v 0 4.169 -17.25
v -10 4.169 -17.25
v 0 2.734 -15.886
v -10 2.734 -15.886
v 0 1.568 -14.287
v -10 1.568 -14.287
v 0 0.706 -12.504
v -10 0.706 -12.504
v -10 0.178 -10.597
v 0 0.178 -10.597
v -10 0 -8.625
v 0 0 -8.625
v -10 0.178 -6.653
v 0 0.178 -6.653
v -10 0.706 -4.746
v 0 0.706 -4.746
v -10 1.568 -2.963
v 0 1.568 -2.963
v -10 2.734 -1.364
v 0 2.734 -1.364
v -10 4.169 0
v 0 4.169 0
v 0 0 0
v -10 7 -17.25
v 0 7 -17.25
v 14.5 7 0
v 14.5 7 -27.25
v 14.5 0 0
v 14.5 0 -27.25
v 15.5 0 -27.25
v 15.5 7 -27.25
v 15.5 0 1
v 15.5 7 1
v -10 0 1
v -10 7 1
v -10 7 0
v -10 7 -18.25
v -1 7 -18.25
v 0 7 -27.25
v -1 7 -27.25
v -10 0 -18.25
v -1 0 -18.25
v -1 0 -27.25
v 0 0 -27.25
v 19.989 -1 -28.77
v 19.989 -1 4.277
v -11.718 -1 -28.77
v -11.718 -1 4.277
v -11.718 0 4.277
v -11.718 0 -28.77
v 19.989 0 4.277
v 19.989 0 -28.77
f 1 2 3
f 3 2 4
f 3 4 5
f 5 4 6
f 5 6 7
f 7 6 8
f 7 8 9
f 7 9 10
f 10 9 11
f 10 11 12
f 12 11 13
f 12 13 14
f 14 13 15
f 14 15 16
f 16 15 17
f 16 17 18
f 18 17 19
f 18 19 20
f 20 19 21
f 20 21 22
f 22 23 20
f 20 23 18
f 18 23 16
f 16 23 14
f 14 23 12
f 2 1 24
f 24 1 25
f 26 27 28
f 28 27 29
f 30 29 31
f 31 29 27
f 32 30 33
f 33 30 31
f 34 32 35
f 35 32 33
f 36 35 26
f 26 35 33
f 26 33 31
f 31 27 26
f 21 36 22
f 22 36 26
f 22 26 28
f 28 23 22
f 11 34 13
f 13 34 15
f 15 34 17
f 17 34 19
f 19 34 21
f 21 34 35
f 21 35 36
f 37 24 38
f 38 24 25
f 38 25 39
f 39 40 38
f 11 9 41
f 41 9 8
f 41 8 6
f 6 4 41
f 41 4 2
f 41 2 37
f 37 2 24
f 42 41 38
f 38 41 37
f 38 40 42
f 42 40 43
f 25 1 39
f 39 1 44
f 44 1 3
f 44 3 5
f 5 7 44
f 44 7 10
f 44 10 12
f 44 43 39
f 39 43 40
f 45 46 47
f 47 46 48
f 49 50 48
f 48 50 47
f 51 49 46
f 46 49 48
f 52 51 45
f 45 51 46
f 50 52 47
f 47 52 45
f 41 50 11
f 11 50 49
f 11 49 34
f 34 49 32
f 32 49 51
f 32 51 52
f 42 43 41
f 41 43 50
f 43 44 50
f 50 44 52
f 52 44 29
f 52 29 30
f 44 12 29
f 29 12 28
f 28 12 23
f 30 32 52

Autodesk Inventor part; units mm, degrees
ref_plane "YZ Plane" through (0, 0, 0) normal (1, 0, 0) x (0, 1, 0)
ref_plane "XZ Plane" through (0, 0, 0) normal (0, 1, 0) x (-1, 0, 0)
ref_plane "XY Plane" through (0, 0, 0) normal (0, 0, 1) x (1, 0, 0)
sketch "Sketch1" plane through (0, 0, 0) normal (0, 1, 0) x (-1, 0, 0)
  line L0 (0, 0) -> (-14.5, 0)
  line L1 (-14.5, 0) -> (-14.5, -42.5)
  line L2 (-14.5, -42.5) -> (0, -42.5)
  line L3 (0, -42.5) -> (0, 0)
  line L4 (0, 0) -> (15.5, 0)
  line L5 (15.5, 0) -> (15.5, -17.25)
  line L6 (15.5, -17.25) -> (0, -17.25)
  line L7 (0, -17.25) -> (0, 0)
  line L8 (0, -17.25) -> (10, -17.25)
  line L9 (10, -17.25) -> (10, -18.25)
  line L10 (10, -18.25) -> (0, -18.25)
  line L11 (0, -18.25) -> (0, -17.25)
  line L12 (0, -17.25) -> (1, -17.25)
  line L13 (1, -17.25) -> (1, -27.25)
  line L14 (1, -27.25) -> (0, -27.25)
  line L15 (0, -27.25) -> (0, -17.25)
  line L16 (10, 0) -> (-14.5, 0)
  line L17 (-14.5, 0) -> (-14.5, 1)
  line L18 (-14.5, 1) -> (10, 1)
  line L19 (10, 1) -> (10, 0)
  line L20 (-14.5, 1) -> (-15.5, 1)
  line L21 (-15.5, 1) -> (-15.5, -27.25)
  line L22 (-15.5, -27.25) -> (-14.5, -27.25)
  line L23 (-14.5, -27.25) -> (-14.5, 1)
  line L24 (11.7177, -28.7701) -> (-19.9895, -28.7701)
  line L25 (-19.9895, -28.7701) -> (-19.9895, 4.2767)
  line L26 (-19.9895, 4.2767) -> (11.7177, 4.2767)
  line L27 (11.7177, 4.2767) -> (11.7177, -28.7701)
  dimension "d0" = 15.5
  dimension "d1" = 17.25
  dimension "d2" = 14.5
  dimension "d3" = 42.5
  dimension "d4" = 1
  dimension "d5" = 10
  dimension "d6" = 10
  dimension "d7" = 1
  dimension "d8" = 1
  dimension "d9" = 1
  dimension "d10" = 28.25
extrude "Extrusion1" add sketch "Sketch1" against normal blind 1 contours L3 L24 L1 L0 | L4 L27 L6 L3 | L0 L17 L18 L19 L4 | L1 L22 L21 L20 L17 | L6 L13 L10 L3 | L19 L18 L20 L21 L22 L1 L24 L25 L26 L27 L4 | L10 L13 L14 L3 | L6 L9 L10 L13 | L14 L13 L10 L9 L6 L27 L24 L3
extrude "Extrusion2" add sketch "Sketch1" along normal blind 7 contours L0 L17 L18 L19 L4 | L1 L22 L21 L20 L17 | L6 L13 L10 L3 | L10 L13 L14 L3 | L6 L9 L10 L13
sketch "Sketch2" plane through (-10, 0, -17.25) normal (-1, 0, 0) x (0, 0, 1)
  line L0 (0, 0) -> (-1, 0) projected
  line L1 (0, 0) -> (0, 7) projected
  line L2 (-1, 7) -> (0, 7) projected
  line L3 (-1, 0) -> (-1, 7) projected
  line L4 (18.25, 0) -> (17.25, 0) projected
  line L5 (18.25, 0) -> (18.25, 7) projected
  line L6 (17.25, 7) -> (18.25, 7) projected
  line L7 (17.25, 0) -> (17.25, 7) projected
  arc A0 (0, 4.027) -> (17.25, 4.027) centre (8.625, 11.25) ccw
  line L8 (21.5267, 0) -> (-11.5201, 0) projected
  line L9 (17.25, 4.027) -> (17.25, 0)
  line L10 (17.25, 0) -> (0, 0)
  line L11 (0, 0) -> (0, 4.027)
  line L12 (0, 0) -> (0, 7) projected
  line L13 (0, 4.027) -> (0, 0)
  line L14 (0, 0) -> (17.25, 0)
  line L15 (17.25, 0) -> (17.25, 4.027)
  arc A1 (0, 4.027) -> (17.25, 4.027) centre (8.625, 11.25) ccw
  line L16 (17.25, 4.027) -> (17.25, 0)
  line L17 (17.25, 0) -> (0, 0)
  line L18 (0, 0) -> (0, 4.027)
  line L19 (0, 4.027) -> (0, 0)
  line L20 (0, 0) -> (8.625, 0)
  line L21 (8.625, 0) -> (17.25, 0)
  line L22 (-11.5201, 0) -> (21.5267, 0) projected
  line L23 (17.25, 0) -> (17.25, 4.027)
  dimension "d15" = 8.625
  dimension "d16" = 22.5
sketch "Sketch3" plane through (-10, 0, -17.25) normal (-1, 0, 0) x (0, 0, 1)
  line L0 (0, 0) -> (-1, 0) projected
  line L1 (0, 0) -> (0, 7) projected
  line L2 (-1, 7) -> (0, 7) projected
  line L3 (-1, 0) -> (-1, 7) projected
  line L4 (18.25, 0) -> (17.25, 0) projected
  line L5 (18.25, 0) -> (18.25, 7) projected
  line L6 (17.25, 7) -> (18.25, 7) projected
  line L7 (17.25, 0) -> (17.25, 7) projected
  line L8 (21.5267, 0) -> (-11.5201, 0) projected
  arc A0 (0, 4.1686) -> (17.25, 4.1686) centre (8.625, 11.007) ccw
  line L9 (-11.5201, 0) -> (21.5267, 0) projected
  line L10 (0, 0) -> (0, 7) projected
  line L11 (0, 4.1686) -> (0, 0)
  line L12 (0, 0) -> (8.625, 0)
  line L13 (18.25, 0) -> (17.25, 0) projected
  line L14 (8.625, 0) -> (17.25, 0)
  line L15 (17.25, 0) -> (17.25, 4.1686)
  dimension "d17" = 8.625
extrude "Extrusion3" add sketch "Sketch3" against normal blind 10 contours A0 L7 L8 | L1 A0 L8
properties part number "motor_mount_fitcheck1"
